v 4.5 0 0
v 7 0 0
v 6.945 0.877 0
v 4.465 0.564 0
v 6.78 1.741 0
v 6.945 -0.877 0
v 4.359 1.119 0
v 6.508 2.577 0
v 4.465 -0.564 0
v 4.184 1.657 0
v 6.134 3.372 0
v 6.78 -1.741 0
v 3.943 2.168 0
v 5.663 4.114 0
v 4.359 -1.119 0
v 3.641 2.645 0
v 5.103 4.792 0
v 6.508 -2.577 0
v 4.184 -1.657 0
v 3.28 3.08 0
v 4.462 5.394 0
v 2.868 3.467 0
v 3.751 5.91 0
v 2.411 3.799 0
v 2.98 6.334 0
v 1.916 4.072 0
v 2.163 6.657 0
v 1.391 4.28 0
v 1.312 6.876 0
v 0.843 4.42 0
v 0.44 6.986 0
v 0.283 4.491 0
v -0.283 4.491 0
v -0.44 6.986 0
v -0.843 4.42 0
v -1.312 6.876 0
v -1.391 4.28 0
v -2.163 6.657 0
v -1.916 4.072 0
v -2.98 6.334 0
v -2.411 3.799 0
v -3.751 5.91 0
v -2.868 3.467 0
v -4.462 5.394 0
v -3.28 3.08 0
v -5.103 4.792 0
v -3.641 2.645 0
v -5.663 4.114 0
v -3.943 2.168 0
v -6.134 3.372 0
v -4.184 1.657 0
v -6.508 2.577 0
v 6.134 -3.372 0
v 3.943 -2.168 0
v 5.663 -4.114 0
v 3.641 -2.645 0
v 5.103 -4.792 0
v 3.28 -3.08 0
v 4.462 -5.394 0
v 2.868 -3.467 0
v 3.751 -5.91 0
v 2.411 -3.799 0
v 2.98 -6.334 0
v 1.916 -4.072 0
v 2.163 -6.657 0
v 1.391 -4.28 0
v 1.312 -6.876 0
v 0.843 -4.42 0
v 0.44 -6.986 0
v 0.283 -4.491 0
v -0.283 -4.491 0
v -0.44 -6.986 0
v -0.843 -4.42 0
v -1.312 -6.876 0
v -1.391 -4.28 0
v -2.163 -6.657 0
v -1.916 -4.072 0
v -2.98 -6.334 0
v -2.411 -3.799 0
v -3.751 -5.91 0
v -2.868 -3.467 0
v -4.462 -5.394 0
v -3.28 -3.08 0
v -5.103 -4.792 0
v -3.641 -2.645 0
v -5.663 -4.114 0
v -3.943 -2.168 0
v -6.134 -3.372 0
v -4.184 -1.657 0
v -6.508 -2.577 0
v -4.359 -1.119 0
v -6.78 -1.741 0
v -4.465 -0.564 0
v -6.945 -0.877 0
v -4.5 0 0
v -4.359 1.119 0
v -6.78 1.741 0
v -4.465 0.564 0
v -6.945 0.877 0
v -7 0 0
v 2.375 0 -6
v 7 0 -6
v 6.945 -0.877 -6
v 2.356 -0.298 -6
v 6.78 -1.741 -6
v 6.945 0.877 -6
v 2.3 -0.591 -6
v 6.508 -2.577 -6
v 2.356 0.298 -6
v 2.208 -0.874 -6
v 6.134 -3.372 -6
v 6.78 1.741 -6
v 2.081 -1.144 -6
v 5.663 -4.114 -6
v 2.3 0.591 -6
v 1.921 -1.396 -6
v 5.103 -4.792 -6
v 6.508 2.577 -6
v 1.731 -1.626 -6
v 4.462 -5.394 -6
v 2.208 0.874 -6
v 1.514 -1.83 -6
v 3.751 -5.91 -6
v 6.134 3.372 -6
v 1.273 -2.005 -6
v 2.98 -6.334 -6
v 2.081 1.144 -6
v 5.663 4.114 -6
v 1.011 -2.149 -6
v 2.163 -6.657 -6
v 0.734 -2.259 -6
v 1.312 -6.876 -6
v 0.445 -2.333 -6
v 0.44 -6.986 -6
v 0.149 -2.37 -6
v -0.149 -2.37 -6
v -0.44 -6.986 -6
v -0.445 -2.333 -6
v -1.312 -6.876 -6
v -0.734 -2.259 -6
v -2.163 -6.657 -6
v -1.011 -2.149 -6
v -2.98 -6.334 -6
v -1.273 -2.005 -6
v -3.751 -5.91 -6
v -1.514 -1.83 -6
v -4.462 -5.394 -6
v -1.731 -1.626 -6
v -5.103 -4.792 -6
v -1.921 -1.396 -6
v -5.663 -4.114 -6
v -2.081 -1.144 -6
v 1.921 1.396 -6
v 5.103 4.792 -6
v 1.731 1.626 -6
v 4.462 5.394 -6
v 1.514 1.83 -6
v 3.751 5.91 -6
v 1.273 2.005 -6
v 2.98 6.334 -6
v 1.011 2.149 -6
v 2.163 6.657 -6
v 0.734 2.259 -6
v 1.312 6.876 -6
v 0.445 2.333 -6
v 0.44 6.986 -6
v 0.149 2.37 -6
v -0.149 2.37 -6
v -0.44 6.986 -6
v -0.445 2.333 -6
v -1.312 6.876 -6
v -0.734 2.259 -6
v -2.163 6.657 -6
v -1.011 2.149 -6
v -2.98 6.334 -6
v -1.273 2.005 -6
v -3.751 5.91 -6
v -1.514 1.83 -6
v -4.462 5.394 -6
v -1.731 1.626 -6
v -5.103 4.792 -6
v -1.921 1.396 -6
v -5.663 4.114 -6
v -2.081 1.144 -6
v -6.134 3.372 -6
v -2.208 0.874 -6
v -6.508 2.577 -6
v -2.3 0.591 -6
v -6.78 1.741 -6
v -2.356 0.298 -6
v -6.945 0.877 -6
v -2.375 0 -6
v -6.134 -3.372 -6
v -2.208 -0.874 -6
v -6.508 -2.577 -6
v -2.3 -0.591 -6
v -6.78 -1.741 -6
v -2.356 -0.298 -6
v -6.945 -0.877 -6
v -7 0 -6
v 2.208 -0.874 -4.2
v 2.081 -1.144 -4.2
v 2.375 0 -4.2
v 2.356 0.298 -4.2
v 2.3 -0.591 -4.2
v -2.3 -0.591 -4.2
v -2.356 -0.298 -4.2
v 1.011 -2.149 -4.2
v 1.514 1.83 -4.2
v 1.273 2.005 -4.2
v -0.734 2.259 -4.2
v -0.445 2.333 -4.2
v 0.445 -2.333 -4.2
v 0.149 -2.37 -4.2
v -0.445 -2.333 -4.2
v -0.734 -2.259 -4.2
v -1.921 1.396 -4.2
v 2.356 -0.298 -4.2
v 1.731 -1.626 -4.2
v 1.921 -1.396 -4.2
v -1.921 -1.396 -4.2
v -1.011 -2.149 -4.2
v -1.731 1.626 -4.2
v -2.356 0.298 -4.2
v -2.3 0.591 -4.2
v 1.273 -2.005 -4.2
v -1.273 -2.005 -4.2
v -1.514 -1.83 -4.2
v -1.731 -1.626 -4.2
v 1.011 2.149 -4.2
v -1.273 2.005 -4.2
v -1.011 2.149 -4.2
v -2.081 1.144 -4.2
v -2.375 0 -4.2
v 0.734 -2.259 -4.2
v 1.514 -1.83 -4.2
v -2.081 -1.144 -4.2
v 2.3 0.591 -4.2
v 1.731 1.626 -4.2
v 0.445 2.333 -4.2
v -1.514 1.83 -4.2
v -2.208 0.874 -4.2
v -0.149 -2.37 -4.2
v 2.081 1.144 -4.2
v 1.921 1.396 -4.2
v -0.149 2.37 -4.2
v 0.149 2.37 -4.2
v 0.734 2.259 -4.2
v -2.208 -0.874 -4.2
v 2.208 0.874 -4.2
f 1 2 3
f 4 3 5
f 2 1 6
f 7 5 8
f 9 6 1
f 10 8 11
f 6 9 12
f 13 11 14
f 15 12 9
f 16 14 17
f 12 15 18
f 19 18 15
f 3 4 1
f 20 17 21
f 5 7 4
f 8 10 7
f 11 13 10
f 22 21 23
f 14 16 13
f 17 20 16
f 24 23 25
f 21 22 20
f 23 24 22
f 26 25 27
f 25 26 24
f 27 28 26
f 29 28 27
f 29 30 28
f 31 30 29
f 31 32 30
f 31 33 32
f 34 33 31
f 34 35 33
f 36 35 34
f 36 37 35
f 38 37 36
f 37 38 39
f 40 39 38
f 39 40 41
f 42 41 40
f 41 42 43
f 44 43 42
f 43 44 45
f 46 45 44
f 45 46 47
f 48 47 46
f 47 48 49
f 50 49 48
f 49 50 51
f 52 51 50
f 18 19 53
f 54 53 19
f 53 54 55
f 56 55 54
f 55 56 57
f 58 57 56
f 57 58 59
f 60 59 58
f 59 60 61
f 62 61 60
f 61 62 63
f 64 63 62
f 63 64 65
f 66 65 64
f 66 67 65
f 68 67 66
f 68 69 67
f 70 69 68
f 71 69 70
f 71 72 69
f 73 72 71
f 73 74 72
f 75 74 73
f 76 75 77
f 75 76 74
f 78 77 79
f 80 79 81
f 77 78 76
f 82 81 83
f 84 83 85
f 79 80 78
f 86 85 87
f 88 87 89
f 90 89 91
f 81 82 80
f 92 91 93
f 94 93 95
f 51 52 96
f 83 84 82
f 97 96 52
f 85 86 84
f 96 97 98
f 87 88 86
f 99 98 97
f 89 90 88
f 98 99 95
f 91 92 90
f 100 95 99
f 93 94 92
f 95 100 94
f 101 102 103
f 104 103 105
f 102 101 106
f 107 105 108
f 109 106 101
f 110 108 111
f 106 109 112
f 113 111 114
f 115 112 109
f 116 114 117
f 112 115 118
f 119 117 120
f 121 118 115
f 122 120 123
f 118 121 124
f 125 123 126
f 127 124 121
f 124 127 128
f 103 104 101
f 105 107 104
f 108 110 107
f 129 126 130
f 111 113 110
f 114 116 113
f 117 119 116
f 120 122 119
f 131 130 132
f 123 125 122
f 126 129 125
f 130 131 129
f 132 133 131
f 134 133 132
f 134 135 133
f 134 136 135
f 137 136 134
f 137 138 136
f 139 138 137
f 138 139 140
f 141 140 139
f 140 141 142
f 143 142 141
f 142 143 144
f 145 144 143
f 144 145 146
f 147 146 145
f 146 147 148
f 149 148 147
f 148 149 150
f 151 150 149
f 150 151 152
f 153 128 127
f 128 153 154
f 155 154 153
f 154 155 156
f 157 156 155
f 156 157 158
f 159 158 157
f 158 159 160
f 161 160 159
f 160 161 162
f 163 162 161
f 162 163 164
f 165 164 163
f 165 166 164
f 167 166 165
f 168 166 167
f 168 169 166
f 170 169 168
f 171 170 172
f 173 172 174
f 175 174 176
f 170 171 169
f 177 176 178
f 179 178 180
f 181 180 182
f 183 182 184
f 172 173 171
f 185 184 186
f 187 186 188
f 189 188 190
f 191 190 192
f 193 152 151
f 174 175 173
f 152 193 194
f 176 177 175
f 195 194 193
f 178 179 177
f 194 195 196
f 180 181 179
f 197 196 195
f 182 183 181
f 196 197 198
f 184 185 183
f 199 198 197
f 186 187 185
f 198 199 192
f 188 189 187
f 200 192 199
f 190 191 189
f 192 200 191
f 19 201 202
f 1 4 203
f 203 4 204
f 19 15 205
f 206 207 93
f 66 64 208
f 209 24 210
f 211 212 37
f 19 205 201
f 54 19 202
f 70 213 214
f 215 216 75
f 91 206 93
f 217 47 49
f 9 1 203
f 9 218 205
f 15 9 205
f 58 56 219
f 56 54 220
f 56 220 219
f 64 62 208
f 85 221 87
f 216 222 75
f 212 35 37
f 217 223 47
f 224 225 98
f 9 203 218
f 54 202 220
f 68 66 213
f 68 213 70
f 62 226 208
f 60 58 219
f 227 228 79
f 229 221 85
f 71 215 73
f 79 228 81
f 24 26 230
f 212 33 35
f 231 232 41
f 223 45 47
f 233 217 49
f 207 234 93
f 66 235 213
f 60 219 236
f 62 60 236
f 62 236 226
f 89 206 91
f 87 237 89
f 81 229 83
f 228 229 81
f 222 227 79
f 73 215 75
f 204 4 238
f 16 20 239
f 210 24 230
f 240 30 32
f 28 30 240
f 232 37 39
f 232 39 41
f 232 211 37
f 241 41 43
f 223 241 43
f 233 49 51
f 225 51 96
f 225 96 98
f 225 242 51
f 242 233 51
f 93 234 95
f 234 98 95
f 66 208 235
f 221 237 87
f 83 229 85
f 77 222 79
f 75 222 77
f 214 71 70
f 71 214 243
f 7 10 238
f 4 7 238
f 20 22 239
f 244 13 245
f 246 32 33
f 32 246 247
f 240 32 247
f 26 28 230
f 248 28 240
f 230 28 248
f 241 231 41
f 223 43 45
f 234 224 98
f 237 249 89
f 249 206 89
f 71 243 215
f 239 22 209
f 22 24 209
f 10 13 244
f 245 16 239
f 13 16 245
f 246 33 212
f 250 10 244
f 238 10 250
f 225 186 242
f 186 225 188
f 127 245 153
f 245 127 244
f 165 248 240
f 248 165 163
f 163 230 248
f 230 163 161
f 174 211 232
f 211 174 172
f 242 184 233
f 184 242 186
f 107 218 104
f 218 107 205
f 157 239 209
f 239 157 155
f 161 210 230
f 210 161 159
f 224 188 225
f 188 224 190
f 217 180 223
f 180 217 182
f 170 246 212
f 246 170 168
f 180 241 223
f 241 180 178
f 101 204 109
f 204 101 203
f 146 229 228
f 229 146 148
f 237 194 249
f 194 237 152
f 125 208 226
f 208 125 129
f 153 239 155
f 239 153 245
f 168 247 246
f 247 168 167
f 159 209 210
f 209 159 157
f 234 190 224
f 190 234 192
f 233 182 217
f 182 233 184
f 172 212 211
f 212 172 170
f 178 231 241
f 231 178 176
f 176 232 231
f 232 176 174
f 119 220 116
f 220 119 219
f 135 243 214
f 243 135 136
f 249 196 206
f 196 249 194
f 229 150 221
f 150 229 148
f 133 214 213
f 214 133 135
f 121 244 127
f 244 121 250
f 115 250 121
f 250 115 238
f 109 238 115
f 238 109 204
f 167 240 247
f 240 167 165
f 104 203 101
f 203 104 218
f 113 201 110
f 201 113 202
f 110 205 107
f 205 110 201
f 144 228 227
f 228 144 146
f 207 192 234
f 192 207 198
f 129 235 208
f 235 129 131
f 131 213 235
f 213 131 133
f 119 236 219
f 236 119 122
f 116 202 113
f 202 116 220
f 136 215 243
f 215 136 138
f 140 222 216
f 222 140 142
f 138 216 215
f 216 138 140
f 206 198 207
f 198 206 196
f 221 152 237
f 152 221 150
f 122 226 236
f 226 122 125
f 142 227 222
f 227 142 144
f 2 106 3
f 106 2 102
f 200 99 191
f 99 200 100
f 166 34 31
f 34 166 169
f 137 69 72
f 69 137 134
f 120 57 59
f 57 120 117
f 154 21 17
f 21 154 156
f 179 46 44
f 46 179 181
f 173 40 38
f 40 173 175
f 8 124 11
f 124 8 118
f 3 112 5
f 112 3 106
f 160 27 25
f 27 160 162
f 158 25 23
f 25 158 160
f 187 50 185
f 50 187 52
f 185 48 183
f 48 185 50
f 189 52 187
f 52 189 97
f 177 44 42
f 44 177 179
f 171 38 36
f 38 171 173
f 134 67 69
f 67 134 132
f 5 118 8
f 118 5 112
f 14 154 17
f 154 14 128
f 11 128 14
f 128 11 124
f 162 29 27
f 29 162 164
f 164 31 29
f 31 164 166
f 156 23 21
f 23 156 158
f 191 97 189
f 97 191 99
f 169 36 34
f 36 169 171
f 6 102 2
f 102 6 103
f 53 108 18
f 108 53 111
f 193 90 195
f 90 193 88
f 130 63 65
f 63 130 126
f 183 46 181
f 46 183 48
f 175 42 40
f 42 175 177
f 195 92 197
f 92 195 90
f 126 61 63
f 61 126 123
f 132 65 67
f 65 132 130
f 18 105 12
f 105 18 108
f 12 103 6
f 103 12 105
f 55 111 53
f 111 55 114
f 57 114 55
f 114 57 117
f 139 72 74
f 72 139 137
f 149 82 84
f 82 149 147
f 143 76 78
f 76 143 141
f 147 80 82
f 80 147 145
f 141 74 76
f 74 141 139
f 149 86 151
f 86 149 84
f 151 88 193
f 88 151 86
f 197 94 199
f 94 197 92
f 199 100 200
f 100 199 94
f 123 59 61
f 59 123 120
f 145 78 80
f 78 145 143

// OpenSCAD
$fn = 50;


difference() {
	union() {
		translate(v = [0, 0, -6.0000000000]) {
			cylinder(h = 6, r = 7.0000000000);
		}
	}
	union() {
		translate(v = [0, 0, 0]) {
			rotate(a = [0, 0, 0]) {
				difference() {
					union() {
						translate(v = [0, 0, -6.0000000000]) {
							cylinder(h = 6, r = 2.2500000000);
						}
						translate(v = [0, 0, -4.2000000000]) {
							cylinder(h = 4.2000000000, r1 = 2.3750000000, r2 = 4.5000000000);
						}
						translate(v = [0, 0, -6.0000000000]) {
							cylinder(h = 6, r = 2.3750000000);
						}
						translate(v = [0, 0, -6.0000000000]) {
							cylinder(h = 6, r = 2.2500000000);
						}
					}
					union();
				}
			}
		}
	}
}
